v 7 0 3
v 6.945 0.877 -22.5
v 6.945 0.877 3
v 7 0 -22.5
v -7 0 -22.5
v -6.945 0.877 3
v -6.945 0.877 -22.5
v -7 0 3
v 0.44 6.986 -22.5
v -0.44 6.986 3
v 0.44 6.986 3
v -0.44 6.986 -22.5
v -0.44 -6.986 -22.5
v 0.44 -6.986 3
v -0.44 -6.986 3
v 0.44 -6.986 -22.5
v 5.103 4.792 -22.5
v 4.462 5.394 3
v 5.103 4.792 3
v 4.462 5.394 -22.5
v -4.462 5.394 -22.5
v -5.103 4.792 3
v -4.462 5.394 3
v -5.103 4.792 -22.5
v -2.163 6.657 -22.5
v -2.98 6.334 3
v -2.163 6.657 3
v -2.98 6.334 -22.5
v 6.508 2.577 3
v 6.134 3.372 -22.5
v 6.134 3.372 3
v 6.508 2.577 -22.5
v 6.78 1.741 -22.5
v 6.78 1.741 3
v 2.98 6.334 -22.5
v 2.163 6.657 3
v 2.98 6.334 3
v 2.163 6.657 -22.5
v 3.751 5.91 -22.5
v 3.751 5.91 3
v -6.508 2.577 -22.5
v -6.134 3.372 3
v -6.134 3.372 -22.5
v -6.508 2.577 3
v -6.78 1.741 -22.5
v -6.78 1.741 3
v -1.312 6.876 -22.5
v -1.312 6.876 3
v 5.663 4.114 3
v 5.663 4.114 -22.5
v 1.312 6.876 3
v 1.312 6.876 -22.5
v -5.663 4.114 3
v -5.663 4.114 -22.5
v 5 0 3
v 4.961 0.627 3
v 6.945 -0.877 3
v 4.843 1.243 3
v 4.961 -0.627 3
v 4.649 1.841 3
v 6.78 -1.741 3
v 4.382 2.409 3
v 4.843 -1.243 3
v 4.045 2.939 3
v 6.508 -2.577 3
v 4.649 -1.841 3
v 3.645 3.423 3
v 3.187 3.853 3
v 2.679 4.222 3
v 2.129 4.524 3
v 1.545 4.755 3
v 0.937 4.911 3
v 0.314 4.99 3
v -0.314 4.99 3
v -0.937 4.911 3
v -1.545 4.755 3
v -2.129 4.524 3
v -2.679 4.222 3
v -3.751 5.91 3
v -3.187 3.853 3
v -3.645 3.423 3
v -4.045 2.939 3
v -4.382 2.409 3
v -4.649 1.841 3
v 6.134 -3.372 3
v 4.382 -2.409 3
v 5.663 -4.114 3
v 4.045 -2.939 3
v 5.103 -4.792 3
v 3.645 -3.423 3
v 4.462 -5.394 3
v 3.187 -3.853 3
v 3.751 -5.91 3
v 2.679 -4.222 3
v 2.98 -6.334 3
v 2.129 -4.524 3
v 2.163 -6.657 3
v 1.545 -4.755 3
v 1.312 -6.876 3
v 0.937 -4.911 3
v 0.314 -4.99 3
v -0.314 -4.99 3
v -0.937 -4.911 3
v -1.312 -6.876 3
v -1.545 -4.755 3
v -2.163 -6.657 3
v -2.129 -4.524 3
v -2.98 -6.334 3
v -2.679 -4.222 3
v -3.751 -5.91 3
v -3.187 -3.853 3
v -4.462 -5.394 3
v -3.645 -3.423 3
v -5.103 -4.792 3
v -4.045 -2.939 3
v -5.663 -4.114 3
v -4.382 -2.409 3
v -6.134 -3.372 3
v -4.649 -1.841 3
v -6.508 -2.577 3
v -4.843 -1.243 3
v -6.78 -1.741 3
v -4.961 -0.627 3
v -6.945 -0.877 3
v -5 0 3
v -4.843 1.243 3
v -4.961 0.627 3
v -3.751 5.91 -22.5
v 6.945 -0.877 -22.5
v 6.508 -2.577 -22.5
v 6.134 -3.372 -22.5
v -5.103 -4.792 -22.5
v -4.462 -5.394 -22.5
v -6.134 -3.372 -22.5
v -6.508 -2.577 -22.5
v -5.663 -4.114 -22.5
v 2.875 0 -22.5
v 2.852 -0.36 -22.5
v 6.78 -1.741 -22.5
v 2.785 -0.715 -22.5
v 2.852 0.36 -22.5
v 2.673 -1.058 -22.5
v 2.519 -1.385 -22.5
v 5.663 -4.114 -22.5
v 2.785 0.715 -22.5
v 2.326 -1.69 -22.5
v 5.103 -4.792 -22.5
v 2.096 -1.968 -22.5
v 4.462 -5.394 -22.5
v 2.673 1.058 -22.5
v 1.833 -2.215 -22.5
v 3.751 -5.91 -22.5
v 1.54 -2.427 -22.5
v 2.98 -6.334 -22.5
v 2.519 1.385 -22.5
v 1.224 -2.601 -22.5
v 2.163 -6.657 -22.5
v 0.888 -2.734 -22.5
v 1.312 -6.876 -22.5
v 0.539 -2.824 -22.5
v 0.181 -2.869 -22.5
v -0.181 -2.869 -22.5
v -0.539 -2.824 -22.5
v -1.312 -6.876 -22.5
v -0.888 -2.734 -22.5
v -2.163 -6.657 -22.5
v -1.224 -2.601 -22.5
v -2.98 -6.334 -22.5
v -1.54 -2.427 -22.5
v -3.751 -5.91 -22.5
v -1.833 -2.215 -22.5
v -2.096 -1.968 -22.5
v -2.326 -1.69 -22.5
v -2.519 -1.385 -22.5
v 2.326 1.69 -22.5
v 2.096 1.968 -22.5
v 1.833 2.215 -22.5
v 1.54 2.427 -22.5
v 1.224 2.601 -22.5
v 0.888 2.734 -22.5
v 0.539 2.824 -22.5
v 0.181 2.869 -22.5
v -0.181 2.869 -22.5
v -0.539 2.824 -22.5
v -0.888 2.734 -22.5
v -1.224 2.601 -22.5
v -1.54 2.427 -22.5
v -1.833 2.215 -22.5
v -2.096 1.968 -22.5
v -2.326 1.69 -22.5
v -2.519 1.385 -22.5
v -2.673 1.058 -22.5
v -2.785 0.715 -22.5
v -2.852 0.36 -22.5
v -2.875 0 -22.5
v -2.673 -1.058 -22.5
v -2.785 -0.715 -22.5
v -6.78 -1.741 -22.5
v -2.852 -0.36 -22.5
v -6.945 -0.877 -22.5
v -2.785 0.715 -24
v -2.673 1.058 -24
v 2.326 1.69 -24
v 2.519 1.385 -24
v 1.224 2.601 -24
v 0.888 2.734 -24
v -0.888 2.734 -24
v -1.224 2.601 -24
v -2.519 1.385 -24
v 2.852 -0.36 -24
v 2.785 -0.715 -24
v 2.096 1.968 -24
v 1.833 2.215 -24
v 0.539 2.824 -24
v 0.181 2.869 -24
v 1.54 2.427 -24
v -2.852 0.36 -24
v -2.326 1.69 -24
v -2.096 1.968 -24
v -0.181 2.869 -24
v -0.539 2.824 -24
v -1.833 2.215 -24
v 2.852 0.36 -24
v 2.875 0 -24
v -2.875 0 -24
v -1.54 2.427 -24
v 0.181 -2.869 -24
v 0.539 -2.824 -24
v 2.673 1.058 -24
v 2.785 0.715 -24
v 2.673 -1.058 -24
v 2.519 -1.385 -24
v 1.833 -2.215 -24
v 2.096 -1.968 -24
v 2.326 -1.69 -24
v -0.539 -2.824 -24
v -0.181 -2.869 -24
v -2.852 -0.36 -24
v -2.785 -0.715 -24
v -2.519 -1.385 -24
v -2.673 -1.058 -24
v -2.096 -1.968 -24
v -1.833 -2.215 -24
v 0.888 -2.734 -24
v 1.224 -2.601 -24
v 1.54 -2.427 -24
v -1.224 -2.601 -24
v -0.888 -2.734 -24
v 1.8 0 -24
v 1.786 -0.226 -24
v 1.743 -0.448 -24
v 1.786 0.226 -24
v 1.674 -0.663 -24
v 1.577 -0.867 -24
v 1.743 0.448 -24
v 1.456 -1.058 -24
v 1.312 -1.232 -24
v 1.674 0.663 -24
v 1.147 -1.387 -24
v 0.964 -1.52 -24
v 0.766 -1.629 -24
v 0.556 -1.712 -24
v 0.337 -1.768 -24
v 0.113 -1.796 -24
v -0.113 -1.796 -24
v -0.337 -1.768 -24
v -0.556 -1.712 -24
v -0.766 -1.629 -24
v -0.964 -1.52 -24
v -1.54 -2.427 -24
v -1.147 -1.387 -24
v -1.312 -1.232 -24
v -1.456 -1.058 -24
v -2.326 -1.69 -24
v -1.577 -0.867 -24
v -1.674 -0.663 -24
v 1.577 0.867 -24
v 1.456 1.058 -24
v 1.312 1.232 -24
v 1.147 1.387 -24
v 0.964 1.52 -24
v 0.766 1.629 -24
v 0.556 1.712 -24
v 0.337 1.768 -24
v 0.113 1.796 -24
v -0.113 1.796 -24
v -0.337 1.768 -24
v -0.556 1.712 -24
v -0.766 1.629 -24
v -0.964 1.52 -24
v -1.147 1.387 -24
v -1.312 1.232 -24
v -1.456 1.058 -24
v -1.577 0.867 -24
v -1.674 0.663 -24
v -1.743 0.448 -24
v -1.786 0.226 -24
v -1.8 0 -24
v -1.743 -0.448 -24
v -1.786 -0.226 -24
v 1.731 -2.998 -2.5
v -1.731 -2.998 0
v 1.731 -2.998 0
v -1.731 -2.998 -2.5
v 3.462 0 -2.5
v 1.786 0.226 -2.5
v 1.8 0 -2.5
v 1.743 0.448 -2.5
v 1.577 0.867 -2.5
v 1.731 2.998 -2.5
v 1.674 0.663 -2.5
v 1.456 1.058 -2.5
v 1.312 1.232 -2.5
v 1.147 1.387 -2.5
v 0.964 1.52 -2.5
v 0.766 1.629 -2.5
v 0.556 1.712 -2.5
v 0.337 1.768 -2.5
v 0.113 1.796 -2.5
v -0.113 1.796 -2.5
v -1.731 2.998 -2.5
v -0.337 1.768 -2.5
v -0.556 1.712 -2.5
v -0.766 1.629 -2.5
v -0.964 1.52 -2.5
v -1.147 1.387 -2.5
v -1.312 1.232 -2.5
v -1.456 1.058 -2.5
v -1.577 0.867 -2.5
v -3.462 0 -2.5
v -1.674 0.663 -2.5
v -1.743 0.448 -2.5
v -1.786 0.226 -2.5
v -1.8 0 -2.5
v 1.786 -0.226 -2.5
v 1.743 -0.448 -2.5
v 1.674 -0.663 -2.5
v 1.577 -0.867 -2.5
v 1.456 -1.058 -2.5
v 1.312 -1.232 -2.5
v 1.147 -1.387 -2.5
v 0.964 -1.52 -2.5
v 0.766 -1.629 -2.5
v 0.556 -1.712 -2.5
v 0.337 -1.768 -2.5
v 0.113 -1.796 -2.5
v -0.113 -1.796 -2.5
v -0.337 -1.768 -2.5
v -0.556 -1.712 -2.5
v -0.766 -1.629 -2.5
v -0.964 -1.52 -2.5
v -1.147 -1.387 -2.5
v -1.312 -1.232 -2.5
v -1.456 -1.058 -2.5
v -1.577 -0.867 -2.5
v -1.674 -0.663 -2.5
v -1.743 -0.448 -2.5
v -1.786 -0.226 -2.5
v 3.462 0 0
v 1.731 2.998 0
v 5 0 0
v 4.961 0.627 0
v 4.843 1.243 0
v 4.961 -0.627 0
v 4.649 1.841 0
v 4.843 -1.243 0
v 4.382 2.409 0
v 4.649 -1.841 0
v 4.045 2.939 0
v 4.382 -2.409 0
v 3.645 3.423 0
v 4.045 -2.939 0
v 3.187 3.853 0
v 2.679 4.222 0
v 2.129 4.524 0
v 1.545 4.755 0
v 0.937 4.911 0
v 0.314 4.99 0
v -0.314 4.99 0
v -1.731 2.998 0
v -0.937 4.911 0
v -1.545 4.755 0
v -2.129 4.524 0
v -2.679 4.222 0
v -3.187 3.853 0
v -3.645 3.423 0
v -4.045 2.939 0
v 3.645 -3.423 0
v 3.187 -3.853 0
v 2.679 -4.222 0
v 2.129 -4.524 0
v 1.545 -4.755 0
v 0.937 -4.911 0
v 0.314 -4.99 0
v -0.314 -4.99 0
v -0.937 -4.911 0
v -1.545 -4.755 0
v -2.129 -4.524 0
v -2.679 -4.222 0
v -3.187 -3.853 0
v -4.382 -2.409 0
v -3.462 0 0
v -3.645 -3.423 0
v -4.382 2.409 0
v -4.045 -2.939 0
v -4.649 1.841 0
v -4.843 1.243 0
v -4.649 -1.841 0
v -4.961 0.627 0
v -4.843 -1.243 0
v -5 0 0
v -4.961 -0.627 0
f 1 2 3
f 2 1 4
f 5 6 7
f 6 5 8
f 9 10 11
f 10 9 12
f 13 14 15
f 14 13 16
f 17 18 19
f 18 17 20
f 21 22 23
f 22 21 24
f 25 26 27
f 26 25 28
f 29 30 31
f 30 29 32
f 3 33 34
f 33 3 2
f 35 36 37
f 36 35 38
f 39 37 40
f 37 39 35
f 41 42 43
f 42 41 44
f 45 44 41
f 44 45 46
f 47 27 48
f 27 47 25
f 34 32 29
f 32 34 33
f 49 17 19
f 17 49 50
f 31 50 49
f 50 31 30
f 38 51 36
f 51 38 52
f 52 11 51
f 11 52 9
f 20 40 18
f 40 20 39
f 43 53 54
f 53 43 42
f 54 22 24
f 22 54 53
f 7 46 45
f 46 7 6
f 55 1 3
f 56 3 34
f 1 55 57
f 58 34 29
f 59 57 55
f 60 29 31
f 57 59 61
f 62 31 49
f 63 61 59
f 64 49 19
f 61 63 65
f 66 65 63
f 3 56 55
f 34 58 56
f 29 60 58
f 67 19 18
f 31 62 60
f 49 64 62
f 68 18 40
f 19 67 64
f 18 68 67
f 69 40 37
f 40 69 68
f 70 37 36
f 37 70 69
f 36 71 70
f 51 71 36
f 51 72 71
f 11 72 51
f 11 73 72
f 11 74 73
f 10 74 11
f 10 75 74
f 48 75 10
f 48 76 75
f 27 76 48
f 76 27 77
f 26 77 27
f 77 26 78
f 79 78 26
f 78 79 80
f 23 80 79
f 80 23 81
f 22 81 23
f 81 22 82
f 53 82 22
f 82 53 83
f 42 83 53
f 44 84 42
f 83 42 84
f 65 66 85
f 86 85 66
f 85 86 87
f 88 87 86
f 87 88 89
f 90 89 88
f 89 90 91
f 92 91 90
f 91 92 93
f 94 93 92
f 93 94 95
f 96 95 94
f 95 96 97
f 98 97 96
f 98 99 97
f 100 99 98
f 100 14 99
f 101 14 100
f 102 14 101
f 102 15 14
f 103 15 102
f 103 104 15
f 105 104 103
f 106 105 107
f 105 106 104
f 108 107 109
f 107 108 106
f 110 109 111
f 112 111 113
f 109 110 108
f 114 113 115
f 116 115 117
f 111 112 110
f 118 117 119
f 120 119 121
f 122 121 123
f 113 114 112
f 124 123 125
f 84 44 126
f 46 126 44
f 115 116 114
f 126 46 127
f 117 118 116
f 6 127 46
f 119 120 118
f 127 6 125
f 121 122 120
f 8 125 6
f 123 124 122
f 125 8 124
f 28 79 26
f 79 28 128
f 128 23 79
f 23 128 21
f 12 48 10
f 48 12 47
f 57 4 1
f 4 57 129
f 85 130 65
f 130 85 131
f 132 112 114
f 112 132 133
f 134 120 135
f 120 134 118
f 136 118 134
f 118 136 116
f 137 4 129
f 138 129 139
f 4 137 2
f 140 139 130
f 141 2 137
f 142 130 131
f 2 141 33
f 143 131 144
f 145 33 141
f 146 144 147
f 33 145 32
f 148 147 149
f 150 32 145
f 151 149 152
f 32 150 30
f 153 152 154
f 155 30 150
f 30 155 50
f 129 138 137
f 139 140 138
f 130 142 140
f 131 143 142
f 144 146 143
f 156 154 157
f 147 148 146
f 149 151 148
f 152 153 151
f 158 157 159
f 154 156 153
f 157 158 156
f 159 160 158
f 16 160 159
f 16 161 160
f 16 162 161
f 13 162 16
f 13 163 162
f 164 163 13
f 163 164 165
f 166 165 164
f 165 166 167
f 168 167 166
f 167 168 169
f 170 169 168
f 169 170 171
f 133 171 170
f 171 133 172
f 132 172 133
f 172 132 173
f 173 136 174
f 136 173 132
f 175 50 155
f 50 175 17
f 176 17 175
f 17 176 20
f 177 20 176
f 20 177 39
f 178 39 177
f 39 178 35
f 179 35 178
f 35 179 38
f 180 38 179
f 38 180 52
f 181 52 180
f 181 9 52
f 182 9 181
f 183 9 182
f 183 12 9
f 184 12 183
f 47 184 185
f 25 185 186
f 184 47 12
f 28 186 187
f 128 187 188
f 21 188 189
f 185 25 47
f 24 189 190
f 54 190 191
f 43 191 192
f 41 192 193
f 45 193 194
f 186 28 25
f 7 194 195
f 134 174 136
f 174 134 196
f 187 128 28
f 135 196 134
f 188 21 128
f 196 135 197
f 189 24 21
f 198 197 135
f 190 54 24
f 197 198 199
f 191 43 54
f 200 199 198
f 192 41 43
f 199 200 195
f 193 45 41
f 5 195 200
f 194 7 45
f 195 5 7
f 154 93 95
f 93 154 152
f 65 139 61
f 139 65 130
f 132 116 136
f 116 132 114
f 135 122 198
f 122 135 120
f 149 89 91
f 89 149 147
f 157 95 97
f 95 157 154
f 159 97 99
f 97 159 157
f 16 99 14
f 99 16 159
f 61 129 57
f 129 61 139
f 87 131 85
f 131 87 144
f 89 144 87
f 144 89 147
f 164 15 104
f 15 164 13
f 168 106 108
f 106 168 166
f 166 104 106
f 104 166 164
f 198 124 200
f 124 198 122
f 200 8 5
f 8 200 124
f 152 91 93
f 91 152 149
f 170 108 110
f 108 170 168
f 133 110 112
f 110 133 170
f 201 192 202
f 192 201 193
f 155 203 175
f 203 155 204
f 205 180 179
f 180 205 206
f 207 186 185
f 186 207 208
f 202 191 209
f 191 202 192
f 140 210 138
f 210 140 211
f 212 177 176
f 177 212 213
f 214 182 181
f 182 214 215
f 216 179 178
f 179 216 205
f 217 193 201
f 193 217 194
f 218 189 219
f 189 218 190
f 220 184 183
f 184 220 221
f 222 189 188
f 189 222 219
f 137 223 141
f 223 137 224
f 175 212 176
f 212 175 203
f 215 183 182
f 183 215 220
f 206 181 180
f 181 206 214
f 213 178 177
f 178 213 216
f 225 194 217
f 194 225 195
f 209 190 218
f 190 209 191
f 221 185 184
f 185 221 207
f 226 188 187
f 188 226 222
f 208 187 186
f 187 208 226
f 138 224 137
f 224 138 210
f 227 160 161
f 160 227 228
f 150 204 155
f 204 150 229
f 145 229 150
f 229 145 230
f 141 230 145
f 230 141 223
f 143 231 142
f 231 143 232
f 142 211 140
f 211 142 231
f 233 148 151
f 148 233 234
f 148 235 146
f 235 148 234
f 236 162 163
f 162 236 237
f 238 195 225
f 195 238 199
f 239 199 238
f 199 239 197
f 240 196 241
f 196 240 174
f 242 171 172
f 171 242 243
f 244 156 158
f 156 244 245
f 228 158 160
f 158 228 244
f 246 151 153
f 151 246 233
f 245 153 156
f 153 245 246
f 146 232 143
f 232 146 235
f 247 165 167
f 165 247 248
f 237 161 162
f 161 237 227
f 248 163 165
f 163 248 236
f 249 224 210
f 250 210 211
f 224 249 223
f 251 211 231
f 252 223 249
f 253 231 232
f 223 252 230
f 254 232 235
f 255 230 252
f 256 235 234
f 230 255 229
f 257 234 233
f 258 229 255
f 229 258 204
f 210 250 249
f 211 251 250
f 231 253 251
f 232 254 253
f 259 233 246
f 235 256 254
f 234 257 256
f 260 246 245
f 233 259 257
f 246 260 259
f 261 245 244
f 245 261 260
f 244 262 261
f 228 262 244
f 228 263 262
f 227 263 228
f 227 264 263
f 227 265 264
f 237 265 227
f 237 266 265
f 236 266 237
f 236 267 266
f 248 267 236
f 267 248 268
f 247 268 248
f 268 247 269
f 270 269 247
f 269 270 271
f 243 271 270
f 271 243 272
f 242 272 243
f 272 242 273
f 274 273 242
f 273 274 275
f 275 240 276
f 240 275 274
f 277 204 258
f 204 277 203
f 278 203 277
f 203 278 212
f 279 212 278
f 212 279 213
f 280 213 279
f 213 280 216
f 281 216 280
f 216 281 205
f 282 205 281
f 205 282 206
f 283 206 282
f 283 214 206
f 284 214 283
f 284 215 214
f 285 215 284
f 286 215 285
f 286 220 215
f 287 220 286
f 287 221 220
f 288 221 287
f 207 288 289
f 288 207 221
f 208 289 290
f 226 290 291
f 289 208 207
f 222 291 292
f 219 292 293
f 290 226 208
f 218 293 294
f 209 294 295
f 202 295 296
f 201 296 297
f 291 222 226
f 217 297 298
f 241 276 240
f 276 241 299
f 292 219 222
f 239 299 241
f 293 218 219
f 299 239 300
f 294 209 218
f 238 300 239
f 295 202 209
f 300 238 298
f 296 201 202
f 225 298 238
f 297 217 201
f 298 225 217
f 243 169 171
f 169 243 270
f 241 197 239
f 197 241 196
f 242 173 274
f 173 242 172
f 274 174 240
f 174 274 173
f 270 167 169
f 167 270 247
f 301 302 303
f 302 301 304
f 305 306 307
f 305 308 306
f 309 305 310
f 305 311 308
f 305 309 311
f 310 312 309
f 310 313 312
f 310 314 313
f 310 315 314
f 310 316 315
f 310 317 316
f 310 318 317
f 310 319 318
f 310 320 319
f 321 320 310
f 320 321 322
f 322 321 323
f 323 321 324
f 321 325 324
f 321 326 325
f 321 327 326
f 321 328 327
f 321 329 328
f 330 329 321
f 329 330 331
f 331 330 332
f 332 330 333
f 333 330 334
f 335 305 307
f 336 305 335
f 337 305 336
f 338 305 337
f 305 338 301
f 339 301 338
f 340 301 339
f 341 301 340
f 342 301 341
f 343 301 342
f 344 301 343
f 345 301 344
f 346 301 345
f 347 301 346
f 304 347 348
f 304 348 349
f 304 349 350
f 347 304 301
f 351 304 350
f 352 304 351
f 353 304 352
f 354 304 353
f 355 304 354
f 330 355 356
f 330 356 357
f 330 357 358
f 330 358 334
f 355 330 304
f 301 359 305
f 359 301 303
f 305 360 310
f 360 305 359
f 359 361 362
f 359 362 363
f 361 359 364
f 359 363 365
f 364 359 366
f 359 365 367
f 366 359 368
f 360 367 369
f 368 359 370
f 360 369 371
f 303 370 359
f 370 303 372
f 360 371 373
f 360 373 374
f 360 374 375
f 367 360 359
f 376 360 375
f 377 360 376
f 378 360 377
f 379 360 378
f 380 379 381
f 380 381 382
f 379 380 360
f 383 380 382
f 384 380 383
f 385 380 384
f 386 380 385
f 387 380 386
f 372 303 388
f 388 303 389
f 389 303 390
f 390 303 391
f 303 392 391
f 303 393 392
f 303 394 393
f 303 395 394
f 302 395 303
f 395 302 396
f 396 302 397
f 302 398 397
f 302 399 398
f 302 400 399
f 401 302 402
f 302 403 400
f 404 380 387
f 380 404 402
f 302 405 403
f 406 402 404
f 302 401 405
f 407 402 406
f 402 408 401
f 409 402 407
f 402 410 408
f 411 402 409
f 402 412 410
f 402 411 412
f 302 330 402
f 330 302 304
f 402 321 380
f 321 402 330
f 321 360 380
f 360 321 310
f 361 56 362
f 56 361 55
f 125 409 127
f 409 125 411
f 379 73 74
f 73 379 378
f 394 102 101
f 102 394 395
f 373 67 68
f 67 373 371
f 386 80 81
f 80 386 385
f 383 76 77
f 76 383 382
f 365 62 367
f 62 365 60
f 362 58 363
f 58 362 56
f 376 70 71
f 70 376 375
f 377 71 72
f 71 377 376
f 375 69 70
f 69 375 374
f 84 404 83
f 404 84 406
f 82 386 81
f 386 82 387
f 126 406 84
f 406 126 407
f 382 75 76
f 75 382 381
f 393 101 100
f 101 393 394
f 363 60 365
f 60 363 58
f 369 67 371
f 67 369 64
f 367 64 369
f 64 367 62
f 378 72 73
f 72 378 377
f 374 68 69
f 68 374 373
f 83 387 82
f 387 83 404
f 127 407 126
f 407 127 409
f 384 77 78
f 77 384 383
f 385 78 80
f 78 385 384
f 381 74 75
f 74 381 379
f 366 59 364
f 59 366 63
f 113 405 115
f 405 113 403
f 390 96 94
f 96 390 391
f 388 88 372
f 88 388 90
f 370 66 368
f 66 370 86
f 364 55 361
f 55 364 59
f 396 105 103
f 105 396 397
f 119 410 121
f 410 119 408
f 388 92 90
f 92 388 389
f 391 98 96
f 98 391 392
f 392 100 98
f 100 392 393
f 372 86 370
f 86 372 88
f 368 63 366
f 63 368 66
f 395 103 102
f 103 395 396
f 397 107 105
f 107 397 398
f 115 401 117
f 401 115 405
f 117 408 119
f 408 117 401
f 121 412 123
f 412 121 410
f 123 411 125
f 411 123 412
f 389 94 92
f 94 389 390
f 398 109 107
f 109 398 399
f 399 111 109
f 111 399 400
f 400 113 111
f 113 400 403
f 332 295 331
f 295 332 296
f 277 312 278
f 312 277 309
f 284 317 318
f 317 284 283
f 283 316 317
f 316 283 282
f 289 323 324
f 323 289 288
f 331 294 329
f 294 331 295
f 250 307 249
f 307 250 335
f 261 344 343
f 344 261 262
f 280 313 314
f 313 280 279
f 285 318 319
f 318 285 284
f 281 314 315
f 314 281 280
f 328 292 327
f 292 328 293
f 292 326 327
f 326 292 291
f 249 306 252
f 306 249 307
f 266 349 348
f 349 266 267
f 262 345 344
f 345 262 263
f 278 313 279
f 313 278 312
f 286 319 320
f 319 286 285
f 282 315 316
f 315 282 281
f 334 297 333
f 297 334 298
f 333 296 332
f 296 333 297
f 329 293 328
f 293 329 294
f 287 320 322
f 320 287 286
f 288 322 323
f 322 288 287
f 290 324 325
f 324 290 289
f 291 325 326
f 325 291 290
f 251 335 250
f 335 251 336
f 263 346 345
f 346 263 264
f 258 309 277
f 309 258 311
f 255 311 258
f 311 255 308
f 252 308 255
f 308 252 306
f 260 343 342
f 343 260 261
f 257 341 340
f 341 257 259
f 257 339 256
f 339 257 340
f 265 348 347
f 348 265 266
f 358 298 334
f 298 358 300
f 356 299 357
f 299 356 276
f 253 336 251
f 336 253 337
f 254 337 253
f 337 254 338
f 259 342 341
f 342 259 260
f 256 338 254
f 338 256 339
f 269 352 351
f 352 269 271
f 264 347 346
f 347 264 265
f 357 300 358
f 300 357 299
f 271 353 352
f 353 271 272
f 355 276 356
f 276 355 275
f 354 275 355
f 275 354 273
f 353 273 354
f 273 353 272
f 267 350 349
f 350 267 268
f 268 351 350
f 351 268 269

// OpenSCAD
$fn = 50;


difference() {
	union() {
		translate(v = [0, 0, -22.5000000000]) {
			cylinder(h = 25.5000000000, r = 7.0000000000);
		}
		#translate(v = [0, 0, -24.0000000000]) {
			cylinder(h = 24, r = 2.8750000000);
		}
	}
	union() {
		translate(v = [0, 0, 0]) {
			rotate(a = [0, 0, 0]) {
				difference() {
					union() {
						translate(v = [0, 0, -2.5000000000]) {
							linear_extrude(height = 2.5000000000) {
								polygon(points = [[3.4620000000, 0.0000000000], [1.7310000000, 2.9981799479], [-1.7310000000, 2.9981799479], [-3.4620000000, 0.0000000000], [-1.7310000000, -2.9981799479], [1.7310000000, -2.9981799479]]);
							}
						}
					}
					union();
				}
			}
		}
		#cylinder(h = 3, r = 5.0000000000);
		#translate(v = [0, 0, -100.0000000000]) {
			cylinder(h = 200, r = 1.8000000000);
		}
	}
}
